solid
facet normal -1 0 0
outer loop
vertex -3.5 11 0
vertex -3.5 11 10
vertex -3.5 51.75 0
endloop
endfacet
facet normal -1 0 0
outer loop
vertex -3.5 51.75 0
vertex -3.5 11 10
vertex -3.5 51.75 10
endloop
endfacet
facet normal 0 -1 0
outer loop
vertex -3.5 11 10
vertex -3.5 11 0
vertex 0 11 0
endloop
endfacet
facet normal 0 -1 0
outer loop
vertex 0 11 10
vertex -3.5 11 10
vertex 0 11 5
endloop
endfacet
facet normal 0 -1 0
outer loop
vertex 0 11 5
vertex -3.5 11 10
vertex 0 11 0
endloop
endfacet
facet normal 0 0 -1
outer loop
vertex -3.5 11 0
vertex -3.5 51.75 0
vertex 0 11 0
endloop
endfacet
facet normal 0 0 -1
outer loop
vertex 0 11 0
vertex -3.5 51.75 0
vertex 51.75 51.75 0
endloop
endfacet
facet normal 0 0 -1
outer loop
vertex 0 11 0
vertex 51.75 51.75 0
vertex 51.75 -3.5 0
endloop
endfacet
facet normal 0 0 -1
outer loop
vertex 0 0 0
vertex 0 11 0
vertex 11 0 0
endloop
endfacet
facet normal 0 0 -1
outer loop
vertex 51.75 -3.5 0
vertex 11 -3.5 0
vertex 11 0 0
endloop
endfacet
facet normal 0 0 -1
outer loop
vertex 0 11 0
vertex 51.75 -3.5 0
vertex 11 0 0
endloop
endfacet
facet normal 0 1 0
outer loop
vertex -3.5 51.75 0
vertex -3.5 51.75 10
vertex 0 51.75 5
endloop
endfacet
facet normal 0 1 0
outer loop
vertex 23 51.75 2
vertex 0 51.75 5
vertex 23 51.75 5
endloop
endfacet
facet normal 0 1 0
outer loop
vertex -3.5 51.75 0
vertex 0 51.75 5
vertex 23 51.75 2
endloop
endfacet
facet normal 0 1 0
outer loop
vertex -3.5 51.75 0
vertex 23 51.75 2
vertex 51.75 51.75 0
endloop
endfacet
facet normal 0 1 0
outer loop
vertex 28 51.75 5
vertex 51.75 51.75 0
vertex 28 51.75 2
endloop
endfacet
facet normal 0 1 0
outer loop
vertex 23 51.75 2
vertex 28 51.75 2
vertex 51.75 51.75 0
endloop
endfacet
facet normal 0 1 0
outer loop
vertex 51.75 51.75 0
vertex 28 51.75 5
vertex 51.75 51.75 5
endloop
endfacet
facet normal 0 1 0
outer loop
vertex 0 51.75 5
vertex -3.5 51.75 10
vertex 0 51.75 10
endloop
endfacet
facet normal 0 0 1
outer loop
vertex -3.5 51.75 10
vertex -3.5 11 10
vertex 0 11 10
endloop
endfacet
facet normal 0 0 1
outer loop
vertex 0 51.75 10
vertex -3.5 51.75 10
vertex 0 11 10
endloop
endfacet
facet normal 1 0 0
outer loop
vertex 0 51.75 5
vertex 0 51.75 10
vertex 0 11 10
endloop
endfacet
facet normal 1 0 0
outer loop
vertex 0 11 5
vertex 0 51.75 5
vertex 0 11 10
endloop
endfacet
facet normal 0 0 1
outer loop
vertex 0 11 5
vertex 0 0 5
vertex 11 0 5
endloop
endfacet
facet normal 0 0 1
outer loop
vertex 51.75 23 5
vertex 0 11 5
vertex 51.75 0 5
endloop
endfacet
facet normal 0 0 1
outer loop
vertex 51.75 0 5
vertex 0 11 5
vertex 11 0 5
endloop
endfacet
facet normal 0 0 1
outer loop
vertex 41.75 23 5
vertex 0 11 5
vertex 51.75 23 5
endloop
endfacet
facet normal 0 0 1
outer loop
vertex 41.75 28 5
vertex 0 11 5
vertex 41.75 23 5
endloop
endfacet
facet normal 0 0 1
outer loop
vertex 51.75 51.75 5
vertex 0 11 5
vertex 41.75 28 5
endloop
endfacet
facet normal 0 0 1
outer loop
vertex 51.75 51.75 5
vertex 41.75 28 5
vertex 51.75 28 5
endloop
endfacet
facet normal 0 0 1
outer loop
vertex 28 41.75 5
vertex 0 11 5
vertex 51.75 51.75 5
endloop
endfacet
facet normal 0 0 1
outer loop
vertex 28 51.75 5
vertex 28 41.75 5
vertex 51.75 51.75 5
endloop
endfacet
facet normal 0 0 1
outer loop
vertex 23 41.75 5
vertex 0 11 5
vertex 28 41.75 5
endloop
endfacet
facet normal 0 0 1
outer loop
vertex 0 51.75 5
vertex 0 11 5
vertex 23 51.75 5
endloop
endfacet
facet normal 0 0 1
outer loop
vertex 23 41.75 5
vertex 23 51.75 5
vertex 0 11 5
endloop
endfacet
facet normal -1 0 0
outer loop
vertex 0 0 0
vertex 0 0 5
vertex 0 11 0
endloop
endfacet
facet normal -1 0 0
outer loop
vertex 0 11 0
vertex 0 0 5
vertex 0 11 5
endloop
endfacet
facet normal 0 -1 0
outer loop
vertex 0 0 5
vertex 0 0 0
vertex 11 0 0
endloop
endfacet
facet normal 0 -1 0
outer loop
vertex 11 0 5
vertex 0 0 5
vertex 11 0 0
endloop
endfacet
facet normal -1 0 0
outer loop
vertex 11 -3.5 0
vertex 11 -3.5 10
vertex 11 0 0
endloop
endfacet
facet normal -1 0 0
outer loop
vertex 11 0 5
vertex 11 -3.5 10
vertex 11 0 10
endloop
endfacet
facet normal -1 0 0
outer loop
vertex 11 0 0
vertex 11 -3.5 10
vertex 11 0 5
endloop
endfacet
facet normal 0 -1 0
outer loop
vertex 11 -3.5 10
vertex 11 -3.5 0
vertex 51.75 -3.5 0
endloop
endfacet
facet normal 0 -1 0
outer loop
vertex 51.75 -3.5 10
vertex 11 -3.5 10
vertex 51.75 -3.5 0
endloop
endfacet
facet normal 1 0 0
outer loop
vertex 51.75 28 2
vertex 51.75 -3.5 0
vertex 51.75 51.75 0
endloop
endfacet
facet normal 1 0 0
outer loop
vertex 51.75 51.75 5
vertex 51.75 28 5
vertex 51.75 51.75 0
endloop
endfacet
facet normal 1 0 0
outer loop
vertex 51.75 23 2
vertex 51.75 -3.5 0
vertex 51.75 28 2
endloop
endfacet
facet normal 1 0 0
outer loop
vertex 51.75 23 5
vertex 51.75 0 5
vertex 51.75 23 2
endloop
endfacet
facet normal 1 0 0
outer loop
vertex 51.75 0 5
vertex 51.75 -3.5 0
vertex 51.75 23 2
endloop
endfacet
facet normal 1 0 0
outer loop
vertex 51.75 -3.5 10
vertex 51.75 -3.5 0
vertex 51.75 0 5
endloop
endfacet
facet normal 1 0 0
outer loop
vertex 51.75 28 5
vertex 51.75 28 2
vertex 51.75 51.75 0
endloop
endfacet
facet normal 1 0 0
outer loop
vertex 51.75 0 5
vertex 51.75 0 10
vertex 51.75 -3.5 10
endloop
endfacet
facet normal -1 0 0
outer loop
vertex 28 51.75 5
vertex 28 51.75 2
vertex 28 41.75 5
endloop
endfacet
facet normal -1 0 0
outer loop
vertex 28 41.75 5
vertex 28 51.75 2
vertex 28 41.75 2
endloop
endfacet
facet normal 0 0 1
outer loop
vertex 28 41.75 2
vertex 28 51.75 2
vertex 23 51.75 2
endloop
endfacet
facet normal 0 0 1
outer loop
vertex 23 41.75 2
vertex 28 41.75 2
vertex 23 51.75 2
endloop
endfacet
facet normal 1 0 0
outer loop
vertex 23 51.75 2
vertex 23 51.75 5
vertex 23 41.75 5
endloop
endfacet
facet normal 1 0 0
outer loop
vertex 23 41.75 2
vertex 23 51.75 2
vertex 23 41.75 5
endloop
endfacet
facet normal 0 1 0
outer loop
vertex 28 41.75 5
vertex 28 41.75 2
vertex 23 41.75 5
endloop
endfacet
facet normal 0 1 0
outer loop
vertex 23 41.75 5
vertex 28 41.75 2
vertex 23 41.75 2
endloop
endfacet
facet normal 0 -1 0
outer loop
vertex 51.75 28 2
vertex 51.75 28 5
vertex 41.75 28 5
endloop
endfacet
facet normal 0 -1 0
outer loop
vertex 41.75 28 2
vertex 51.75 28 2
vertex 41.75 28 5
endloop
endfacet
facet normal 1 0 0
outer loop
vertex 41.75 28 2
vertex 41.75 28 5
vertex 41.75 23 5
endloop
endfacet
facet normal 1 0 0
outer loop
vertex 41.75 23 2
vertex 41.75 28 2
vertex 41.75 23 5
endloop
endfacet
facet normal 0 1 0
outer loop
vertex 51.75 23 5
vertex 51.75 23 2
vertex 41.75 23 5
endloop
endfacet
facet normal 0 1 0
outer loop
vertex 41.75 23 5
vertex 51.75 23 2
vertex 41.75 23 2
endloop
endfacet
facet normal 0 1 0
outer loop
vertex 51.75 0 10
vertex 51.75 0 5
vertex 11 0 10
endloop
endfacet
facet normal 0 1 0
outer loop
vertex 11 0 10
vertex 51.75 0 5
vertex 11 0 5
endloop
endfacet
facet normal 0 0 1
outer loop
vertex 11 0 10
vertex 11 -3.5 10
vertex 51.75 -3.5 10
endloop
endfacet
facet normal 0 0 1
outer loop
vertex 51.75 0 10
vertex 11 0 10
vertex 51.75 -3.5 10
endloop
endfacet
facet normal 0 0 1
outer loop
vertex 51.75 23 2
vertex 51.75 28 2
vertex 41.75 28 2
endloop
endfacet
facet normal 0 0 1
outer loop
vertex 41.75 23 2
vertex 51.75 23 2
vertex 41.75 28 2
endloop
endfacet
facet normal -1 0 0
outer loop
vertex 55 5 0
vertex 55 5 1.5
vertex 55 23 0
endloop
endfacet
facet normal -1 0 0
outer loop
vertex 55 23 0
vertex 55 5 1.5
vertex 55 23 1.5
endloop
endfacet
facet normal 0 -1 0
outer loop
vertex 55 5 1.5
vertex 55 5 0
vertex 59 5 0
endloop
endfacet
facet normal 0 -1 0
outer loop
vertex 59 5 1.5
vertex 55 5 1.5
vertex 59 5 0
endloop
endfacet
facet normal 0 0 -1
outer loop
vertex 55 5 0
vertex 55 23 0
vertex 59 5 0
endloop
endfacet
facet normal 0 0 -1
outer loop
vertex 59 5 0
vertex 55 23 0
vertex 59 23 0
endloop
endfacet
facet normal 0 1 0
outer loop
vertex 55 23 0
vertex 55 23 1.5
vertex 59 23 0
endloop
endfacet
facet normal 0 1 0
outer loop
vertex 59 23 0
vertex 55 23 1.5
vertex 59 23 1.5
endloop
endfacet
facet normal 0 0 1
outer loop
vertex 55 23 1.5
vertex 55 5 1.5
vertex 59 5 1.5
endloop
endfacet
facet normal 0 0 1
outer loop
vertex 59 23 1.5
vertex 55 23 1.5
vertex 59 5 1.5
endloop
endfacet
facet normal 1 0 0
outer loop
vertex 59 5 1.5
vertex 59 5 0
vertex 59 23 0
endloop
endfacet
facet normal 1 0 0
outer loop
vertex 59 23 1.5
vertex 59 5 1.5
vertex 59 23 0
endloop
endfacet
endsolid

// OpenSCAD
difference ()
{
	union()
	{
	translate ([0,0,0]) cube ([51.75, 51.75, 5]);
	translate ([11,0-3.5]) cube ([40.75,3.5,10]);
	translate ([-3.5,11,0]) cube ([3.5,40.75,10]);
	}
	translate ([41.75,23,2]) cube ([10,5,3]);
	translate ([23,41.75,2]) cube ([5,10,3]);
}
	translate ([55,5,0]) cube ([4,18,1.5]);
